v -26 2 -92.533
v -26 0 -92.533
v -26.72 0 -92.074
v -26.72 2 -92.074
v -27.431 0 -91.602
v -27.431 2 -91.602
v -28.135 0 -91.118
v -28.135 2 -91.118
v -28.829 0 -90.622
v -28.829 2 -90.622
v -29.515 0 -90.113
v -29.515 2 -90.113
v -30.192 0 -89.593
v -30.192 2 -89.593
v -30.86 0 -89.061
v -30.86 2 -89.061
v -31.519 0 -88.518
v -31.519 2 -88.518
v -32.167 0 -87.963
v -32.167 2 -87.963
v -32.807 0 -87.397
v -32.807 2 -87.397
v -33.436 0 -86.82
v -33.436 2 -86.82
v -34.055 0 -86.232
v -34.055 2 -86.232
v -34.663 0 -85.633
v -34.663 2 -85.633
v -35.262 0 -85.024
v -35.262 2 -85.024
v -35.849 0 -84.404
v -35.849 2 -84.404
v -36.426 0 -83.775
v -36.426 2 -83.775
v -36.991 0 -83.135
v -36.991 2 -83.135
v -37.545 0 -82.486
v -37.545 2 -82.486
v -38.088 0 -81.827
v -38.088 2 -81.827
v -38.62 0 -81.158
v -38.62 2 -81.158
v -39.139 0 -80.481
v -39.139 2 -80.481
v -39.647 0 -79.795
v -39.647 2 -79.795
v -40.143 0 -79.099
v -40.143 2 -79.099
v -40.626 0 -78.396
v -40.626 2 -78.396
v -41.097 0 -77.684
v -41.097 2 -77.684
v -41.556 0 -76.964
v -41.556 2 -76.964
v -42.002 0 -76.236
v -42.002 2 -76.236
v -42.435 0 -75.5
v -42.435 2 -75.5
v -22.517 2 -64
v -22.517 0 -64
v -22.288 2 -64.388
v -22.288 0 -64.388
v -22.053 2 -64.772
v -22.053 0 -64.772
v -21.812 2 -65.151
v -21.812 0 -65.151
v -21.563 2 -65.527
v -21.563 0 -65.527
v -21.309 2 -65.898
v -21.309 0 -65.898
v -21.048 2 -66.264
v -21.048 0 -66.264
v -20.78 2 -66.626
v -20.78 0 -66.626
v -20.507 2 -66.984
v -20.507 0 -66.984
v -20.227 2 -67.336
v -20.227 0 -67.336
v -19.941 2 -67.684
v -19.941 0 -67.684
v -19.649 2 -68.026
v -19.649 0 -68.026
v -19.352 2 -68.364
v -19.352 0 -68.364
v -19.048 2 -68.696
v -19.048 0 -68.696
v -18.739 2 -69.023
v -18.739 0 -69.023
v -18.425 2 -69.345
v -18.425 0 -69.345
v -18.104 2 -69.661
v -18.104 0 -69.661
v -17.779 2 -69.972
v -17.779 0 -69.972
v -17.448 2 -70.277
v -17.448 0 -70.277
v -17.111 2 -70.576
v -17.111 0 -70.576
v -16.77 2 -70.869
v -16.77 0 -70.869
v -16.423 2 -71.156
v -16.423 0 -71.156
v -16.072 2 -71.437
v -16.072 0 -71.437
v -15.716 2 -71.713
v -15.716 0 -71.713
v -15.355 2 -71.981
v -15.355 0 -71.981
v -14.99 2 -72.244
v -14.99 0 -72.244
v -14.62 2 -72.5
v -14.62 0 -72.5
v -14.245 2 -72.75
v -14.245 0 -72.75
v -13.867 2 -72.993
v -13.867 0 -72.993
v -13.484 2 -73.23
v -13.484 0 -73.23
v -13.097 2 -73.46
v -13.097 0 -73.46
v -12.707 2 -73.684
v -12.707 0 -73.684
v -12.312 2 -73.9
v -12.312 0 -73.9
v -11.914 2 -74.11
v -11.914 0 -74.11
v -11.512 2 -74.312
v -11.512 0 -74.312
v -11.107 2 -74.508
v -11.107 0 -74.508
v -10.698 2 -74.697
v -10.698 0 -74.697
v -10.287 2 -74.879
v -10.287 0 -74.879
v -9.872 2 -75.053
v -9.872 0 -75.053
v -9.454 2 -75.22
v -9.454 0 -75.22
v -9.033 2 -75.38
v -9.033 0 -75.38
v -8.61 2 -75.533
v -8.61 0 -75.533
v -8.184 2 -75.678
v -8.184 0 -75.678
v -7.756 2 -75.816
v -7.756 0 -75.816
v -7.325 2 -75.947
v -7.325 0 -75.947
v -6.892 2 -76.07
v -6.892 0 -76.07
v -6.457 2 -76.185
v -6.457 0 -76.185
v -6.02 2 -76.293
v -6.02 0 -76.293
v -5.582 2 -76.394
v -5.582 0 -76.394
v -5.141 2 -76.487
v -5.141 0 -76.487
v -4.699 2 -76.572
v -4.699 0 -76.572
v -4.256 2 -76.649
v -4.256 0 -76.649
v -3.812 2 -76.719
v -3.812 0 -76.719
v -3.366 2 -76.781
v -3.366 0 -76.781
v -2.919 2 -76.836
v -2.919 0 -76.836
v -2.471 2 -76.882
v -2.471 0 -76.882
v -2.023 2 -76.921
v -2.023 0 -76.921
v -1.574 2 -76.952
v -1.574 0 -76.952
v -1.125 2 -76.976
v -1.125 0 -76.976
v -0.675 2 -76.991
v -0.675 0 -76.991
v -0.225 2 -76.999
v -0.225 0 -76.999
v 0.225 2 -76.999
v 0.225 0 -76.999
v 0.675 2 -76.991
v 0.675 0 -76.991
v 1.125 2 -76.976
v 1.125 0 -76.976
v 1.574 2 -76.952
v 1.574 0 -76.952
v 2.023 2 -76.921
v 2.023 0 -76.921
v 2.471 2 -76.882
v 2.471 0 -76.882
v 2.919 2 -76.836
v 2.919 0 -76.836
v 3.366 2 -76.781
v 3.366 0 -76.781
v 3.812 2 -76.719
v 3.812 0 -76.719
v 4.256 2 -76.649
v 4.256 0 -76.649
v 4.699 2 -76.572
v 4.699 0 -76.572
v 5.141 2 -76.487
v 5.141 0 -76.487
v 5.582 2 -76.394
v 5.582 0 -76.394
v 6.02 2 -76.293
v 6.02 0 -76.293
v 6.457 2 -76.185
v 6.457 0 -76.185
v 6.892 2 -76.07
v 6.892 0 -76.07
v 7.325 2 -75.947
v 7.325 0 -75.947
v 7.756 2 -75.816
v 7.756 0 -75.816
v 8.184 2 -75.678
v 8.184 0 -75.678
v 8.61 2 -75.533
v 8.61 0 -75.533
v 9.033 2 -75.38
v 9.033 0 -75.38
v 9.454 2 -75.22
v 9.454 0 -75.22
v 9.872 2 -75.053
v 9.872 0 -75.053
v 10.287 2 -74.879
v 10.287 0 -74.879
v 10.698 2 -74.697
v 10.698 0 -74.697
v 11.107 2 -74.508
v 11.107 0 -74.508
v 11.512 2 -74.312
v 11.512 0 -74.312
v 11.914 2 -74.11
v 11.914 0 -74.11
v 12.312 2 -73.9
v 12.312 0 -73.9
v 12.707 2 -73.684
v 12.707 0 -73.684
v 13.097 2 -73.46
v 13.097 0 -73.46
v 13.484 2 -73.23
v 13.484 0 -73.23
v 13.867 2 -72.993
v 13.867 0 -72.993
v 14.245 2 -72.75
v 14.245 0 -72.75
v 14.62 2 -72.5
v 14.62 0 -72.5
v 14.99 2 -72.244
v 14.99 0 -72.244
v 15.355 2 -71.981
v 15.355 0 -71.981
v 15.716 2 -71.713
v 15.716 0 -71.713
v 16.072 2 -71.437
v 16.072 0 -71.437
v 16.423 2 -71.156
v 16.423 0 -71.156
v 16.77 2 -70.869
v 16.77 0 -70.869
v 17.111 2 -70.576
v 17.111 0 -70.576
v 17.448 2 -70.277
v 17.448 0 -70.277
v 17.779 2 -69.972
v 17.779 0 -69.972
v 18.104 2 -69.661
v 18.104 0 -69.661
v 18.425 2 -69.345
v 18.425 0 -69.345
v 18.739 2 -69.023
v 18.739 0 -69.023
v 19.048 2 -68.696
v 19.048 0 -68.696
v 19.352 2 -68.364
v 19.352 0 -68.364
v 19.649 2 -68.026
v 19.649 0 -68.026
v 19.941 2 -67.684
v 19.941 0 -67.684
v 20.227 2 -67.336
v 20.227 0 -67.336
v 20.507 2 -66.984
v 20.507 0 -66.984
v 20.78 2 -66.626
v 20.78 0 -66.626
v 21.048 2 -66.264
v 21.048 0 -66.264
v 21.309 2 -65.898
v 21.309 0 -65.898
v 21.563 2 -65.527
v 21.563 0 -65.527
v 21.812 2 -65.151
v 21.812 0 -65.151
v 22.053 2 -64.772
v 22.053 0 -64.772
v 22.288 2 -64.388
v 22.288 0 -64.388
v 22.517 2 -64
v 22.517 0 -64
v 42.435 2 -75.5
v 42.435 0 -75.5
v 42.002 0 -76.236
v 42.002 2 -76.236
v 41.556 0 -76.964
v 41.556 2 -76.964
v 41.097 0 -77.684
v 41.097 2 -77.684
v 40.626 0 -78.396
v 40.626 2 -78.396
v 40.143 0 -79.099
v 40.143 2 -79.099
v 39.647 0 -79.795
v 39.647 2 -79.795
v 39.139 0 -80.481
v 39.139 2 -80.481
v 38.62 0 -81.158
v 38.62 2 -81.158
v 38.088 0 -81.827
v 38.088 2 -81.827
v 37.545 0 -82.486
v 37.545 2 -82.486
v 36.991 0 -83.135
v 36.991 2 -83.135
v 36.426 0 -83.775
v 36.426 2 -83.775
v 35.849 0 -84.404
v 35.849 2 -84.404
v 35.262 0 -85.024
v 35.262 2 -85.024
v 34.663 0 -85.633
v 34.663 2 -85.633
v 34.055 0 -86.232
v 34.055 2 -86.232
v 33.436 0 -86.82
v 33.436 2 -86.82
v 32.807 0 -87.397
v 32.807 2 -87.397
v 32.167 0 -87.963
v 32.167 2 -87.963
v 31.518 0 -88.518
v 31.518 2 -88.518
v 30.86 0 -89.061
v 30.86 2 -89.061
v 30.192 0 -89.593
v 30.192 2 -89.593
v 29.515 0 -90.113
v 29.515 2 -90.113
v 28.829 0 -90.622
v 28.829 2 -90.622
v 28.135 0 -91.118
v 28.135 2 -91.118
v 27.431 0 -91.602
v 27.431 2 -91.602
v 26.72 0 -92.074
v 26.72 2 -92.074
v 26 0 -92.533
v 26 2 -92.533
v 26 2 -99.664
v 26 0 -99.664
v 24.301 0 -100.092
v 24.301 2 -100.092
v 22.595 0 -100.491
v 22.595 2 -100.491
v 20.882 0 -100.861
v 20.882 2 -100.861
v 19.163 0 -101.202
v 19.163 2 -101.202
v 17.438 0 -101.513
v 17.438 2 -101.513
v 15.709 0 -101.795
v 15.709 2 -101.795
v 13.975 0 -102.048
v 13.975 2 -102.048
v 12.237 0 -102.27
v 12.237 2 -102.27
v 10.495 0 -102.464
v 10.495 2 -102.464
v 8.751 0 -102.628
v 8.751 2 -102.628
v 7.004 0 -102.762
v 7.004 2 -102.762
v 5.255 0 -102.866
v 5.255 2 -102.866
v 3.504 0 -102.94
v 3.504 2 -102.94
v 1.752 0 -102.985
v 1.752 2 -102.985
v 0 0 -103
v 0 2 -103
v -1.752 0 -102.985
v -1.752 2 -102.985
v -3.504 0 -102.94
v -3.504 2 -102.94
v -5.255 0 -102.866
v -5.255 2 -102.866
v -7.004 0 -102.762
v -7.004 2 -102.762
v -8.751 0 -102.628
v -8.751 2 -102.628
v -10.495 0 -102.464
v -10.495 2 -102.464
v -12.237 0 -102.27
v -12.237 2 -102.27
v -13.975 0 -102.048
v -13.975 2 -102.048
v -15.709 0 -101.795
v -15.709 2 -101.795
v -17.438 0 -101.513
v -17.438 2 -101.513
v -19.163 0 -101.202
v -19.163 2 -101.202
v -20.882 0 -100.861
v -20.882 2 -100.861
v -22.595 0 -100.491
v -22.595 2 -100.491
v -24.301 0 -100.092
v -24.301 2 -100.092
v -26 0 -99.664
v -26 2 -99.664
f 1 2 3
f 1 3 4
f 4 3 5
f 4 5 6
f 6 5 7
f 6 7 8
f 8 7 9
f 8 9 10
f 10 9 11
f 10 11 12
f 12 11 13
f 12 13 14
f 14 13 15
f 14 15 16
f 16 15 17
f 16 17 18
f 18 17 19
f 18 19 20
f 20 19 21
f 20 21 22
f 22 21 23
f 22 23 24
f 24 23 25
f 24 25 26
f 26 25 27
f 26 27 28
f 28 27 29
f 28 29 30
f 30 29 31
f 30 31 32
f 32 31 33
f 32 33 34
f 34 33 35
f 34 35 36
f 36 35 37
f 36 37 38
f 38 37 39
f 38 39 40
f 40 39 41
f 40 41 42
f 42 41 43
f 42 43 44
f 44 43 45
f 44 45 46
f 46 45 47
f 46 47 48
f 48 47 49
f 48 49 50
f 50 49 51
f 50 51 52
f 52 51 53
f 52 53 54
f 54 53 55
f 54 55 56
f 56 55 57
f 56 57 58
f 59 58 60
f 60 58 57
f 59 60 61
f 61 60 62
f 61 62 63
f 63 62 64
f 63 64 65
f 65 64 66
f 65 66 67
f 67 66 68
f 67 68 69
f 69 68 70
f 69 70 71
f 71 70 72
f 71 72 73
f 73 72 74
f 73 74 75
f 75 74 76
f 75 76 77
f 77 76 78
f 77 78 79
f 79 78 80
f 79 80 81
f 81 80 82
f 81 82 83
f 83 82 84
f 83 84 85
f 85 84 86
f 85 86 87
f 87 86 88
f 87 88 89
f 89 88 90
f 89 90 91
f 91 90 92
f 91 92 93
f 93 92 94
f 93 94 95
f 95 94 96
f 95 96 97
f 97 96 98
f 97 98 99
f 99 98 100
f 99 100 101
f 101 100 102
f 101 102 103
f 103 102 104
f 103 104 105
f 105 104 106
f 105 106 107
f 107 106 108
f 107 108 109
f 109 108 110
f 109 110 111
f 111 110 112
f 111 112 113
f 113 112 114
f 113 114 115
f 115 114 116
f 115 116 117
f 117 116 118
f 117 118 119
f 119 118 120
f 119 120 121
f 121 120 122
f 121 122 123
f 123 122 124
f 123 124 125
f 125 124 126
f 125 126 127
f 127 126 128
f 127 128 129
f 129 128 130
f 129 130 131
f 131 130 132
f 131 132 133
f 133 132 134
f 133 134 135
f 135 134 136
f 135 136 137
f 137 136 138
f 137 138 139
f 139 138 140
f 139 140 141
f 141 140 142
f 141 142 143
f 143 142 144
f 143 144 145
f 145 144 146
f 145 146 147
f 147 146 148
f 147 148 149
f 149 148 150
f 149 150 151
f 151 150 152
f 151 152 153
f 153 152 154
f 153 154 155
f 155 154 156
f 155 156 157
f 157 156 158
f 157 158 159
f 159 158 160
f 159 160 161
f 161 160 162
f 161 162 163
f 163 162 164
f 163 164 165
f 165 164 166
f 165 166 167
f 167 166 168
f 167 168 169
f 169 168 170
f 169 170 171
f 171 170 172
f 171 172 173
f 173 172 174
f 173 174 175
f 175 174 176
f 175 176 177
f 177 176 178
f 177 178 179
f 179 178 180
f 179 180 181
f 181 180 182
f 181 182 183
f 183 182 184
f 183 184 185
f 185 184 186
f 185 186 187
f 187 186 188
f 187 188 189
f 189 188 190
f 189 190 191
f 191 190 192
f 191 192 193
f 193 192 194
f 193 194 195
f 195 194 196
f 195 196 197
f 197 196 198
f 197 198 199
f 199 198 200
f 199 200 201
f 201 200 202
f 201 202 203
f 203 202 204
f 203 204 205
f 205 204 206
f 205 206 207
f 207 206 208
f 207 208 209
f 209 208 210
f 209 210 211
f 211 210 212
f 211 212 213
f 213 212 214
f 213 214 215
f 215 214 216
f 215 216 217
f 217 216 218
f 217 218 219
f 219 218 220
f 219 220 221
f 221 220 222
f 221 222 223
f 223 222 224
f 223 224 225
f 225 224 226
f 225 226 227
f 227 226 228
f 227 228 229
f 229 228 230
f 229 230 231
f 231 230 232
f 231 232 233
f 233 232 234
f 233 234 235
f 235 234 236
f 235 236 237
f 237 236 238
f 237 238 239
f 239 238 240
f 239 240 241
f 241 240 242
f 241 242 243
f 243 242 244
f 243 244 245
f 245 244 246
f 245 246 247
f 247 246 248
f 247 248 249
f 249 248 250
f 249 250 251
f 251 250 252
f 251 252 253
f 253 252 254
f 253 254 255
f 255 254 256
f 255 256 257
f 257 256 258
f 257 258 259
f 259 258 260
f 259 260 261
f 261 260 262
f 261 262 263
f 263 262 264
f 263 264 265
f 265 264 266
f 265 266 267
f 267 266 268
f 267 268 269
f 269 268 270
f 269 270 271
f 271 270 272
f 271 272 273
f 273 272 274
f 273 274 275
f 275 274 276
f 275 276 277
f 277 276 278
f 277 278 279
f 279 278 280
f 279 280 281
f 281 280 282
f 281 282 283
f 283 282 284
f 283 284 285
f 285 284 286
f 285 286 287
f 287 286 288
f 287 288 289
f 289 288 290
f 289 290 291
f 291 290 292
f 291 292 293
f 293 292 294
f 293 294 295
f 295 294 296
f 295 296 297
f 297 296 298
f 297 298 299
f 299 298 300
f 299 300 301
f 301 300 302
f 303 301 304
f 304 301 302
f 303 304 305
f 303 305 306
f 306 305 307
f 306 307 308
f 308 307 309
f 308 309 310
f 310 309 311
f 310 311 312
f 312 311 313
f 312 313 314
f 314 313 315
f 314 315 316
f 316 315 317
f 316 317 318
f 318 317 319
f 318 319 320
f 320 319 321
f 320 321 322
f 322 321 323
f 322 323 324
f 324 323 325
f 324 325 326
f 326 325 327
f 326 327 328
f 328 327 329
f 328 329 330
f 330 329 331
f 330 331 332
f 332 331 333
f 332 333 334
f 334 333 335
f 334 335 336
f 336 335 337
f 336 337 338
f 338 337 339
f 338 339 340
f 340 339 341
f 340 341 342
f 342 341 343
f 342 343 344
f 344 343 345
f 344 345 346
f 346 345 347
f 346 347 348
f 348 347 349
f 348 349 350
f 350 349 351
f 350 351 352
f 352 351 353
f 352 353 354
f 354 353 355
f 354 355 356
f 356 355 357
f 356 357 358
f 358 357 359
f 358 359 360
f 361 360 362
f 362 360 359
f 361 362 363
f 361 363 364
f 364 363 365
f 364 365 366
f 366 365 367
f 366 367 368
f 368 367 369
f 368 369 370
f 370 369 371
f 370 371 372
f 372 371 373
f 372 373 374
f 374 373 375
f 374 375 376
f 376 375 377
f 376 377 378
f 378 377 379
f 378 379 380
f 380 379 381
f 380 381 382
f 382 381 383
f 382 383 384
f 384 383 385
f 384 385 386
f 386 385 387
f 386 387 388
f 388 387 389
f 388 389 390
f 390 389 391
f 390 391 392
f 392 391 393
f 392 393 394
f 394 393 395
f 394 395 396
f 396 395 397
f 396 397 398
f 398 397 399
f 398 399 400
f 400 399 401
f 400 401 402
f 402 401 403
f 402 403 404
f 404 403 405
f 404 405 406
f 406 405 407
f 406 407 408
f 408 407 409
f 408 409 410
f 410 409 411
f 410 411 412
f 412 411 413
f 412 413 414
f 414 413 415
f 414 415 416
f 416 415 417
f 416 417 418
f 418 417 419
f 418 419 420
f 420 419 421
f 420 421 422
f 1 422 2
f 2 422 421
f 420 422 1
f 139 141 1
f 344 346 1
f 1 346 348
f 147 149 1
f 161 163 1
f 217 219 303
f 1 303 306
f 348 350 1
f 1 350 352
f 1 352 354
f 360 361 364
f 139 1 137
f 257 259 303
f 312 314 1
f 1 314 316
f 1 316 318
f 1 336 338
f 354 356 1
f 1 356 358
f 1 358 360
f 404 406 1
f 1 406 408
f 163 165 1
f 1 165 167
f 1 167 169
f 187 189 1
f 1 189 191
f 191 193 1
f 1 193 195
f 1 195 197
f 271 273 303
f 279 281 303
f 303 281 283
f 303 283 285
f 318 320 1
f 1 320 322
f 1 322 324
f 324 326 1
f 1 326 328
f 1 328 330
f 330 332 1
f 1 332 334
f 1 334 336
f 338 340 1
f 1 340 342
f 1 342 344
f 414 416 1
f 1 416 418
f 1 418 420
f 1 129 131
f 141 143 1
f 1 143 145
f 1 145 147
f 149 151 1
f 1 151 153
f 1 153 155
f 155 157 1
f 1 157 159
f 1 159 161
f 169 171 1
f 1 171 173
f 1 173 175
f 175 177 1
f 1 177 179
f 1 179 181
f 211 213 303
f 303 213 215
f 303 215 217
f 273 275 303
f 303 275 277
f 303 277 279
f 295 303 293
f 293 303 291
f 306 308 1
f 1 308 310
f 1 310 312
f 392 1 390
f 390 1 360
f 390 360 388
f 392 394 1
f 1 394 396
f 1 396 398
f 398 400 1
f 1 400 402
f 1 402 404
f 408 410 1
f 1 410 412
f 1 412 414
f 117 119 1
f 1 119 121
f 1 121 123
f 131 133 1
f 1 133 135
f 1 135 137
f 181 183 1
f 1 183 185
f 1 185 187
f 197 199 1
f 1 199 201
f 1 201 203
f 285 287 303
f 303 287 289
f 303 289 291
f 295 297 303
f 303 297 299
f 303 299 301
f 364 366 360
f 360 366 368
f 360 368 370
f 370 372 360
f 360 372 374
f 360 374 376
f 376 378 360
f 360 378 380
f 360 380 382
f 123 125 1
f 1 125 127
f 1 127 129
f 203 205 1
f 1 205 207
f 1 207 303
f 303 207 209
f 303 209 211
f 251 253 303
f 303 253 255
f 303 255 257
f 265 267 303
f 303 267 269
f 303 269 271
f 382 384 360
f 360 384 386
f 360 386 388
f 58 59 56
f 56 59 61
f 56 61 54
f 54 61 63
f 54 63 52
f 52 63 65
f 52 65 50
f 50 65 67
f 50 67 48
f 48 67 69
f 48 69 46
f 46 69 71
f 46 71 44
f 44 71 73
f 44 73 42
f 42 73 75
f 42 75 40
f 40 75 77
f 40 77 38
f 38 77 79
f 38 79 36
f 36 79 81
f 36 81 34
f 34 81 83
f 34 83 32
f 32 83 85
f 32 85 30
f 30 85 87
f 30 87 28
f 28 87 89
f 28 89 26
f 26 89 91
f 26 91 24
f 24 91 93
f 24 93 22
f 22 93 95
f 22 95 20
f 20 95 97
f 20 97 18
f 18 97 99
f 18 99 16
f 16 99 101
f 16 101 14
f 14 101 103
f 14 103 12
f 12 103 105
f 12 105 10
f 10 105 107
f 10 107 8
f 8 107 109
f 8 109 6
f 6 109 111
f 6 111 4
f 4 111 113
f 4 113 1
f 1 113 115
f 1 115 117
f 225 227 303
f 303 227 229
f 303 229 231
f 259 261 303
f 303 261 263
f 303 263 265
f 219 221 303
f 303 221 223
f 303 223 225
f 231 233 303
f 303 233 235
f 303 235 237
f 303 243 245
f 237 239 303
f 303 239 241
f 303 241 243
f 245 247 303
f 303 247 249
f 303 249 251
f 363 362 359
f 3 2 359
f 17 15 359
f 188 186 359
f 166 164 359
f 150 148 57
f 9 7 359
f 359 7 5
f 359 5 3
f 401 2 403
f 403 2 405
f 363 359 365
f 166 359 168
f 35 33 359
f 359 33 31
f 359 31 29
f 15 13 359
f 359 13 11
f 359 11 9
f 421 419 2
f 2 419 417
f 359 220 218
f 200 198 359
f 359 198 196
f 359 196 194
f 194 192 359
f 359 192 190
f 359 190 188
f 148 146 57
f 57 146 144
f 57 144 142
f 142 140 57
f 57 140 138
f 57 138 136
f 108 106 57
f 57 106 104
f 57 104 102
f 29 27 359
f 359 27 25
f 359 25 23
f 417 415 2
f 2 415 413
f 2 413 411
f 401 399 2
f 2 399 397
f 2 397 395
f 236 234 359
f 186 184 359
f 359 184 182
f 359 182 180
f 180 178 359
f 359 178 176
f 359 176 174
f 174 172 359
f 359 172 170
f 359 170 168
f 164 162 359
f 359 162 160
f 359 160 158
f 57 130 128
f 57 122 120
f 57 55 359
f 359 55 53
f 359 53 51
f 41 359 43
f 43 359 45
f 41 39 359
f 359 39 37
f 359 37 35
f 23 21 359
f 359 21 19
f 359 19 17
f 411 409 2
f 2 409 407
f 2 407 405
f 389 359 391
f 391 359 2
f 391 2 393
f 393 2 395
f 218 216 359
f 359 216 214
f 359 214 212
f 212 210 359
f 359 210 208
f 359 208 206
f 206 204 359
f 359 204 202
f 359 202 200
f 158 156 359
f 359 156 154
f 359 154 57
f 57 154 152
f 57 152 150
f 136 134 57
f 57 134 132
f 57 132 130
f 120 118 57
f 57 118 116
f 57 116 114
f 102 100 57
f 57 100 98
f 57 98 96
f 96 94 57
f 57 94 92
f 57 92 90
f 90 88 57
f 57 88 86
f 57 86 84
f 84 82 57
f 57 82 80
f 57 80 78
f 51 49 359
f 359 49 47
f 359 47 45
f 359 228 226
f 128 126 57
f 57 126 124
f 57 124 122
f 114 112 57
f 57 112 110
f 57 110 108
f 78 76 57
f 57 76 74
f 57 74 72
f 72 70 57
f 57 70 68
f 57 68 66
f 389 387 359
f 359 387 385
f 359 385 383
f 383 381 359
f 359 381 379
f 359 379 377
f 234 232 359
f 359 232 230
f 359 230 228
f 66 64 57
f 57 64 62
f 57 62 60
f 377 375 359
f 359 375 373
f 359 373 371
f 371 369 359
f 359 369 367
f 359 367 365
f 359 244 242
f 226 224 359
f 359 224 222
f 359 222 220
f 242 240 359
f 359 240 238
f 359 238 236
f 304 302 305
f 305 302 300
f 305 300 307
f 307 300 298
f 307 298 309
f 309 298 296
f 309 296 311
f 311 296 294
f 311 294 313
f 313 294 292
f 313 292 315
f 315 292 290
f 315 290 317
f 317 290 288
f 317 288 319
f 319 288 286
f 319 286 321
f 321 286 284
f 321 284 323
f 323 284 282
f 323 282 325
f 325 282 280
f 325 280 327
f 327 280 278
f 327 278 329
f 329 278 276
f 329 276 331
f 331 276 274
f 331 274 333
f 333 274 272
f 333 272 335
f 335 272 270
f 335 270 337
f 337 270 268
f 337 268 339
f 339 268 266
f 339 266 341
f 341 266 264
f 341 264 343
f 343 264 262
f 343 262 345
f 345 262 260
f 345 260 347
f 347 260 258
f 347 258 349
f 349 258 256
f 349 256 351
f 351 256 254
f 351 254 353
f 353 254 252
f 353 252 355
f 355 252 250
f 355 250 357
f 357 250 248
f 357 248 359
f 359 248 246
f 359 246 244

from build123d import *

# Parameters (mm, degrees)
EXTRUDE_1_DEPTH = 2


with BuildPart() as part:
    # 草图1 → 凸台-拉伸1 (new body)
    with BuildSketch(Plane(origin=(0, 0, 0), x_dir=(1, 0, 0), z_dir=(0, 1, 0))):
        with BuildLine():
            Line((-26, 99.664436987), (-26, 96.560861637))
            Line((-26, 96.560861637), (-26, 92.533119315))
            ThreePointArc((-26, 92.533119315), (-35.261557972, 85.02385236), (-42.435244785, 75.5))
            Line((-42.435244785, 75.5), (-22.516660498, 64))
            ThreePointArc((-22.516660498, 64), (0, 77), (22.516660498, 64))
            Line((22.516660498, 64), (42.435244785, 75.5))
            ThreePointArc((42.435244785, 75.5), (35.261557972, 85.02385236), (26, 92.533119315))
            Line((26, 92.533119315), (26, 96.560861637))
            Line((26, 96.560861637), (26, 99.664436987))
            ThreePointArc((26, 99.664436987), (0, 103), (-26, 99.664436987))
        make_face()
    extrude(amount=EXTRUDE_1_DEPTH)


solid = part.part
